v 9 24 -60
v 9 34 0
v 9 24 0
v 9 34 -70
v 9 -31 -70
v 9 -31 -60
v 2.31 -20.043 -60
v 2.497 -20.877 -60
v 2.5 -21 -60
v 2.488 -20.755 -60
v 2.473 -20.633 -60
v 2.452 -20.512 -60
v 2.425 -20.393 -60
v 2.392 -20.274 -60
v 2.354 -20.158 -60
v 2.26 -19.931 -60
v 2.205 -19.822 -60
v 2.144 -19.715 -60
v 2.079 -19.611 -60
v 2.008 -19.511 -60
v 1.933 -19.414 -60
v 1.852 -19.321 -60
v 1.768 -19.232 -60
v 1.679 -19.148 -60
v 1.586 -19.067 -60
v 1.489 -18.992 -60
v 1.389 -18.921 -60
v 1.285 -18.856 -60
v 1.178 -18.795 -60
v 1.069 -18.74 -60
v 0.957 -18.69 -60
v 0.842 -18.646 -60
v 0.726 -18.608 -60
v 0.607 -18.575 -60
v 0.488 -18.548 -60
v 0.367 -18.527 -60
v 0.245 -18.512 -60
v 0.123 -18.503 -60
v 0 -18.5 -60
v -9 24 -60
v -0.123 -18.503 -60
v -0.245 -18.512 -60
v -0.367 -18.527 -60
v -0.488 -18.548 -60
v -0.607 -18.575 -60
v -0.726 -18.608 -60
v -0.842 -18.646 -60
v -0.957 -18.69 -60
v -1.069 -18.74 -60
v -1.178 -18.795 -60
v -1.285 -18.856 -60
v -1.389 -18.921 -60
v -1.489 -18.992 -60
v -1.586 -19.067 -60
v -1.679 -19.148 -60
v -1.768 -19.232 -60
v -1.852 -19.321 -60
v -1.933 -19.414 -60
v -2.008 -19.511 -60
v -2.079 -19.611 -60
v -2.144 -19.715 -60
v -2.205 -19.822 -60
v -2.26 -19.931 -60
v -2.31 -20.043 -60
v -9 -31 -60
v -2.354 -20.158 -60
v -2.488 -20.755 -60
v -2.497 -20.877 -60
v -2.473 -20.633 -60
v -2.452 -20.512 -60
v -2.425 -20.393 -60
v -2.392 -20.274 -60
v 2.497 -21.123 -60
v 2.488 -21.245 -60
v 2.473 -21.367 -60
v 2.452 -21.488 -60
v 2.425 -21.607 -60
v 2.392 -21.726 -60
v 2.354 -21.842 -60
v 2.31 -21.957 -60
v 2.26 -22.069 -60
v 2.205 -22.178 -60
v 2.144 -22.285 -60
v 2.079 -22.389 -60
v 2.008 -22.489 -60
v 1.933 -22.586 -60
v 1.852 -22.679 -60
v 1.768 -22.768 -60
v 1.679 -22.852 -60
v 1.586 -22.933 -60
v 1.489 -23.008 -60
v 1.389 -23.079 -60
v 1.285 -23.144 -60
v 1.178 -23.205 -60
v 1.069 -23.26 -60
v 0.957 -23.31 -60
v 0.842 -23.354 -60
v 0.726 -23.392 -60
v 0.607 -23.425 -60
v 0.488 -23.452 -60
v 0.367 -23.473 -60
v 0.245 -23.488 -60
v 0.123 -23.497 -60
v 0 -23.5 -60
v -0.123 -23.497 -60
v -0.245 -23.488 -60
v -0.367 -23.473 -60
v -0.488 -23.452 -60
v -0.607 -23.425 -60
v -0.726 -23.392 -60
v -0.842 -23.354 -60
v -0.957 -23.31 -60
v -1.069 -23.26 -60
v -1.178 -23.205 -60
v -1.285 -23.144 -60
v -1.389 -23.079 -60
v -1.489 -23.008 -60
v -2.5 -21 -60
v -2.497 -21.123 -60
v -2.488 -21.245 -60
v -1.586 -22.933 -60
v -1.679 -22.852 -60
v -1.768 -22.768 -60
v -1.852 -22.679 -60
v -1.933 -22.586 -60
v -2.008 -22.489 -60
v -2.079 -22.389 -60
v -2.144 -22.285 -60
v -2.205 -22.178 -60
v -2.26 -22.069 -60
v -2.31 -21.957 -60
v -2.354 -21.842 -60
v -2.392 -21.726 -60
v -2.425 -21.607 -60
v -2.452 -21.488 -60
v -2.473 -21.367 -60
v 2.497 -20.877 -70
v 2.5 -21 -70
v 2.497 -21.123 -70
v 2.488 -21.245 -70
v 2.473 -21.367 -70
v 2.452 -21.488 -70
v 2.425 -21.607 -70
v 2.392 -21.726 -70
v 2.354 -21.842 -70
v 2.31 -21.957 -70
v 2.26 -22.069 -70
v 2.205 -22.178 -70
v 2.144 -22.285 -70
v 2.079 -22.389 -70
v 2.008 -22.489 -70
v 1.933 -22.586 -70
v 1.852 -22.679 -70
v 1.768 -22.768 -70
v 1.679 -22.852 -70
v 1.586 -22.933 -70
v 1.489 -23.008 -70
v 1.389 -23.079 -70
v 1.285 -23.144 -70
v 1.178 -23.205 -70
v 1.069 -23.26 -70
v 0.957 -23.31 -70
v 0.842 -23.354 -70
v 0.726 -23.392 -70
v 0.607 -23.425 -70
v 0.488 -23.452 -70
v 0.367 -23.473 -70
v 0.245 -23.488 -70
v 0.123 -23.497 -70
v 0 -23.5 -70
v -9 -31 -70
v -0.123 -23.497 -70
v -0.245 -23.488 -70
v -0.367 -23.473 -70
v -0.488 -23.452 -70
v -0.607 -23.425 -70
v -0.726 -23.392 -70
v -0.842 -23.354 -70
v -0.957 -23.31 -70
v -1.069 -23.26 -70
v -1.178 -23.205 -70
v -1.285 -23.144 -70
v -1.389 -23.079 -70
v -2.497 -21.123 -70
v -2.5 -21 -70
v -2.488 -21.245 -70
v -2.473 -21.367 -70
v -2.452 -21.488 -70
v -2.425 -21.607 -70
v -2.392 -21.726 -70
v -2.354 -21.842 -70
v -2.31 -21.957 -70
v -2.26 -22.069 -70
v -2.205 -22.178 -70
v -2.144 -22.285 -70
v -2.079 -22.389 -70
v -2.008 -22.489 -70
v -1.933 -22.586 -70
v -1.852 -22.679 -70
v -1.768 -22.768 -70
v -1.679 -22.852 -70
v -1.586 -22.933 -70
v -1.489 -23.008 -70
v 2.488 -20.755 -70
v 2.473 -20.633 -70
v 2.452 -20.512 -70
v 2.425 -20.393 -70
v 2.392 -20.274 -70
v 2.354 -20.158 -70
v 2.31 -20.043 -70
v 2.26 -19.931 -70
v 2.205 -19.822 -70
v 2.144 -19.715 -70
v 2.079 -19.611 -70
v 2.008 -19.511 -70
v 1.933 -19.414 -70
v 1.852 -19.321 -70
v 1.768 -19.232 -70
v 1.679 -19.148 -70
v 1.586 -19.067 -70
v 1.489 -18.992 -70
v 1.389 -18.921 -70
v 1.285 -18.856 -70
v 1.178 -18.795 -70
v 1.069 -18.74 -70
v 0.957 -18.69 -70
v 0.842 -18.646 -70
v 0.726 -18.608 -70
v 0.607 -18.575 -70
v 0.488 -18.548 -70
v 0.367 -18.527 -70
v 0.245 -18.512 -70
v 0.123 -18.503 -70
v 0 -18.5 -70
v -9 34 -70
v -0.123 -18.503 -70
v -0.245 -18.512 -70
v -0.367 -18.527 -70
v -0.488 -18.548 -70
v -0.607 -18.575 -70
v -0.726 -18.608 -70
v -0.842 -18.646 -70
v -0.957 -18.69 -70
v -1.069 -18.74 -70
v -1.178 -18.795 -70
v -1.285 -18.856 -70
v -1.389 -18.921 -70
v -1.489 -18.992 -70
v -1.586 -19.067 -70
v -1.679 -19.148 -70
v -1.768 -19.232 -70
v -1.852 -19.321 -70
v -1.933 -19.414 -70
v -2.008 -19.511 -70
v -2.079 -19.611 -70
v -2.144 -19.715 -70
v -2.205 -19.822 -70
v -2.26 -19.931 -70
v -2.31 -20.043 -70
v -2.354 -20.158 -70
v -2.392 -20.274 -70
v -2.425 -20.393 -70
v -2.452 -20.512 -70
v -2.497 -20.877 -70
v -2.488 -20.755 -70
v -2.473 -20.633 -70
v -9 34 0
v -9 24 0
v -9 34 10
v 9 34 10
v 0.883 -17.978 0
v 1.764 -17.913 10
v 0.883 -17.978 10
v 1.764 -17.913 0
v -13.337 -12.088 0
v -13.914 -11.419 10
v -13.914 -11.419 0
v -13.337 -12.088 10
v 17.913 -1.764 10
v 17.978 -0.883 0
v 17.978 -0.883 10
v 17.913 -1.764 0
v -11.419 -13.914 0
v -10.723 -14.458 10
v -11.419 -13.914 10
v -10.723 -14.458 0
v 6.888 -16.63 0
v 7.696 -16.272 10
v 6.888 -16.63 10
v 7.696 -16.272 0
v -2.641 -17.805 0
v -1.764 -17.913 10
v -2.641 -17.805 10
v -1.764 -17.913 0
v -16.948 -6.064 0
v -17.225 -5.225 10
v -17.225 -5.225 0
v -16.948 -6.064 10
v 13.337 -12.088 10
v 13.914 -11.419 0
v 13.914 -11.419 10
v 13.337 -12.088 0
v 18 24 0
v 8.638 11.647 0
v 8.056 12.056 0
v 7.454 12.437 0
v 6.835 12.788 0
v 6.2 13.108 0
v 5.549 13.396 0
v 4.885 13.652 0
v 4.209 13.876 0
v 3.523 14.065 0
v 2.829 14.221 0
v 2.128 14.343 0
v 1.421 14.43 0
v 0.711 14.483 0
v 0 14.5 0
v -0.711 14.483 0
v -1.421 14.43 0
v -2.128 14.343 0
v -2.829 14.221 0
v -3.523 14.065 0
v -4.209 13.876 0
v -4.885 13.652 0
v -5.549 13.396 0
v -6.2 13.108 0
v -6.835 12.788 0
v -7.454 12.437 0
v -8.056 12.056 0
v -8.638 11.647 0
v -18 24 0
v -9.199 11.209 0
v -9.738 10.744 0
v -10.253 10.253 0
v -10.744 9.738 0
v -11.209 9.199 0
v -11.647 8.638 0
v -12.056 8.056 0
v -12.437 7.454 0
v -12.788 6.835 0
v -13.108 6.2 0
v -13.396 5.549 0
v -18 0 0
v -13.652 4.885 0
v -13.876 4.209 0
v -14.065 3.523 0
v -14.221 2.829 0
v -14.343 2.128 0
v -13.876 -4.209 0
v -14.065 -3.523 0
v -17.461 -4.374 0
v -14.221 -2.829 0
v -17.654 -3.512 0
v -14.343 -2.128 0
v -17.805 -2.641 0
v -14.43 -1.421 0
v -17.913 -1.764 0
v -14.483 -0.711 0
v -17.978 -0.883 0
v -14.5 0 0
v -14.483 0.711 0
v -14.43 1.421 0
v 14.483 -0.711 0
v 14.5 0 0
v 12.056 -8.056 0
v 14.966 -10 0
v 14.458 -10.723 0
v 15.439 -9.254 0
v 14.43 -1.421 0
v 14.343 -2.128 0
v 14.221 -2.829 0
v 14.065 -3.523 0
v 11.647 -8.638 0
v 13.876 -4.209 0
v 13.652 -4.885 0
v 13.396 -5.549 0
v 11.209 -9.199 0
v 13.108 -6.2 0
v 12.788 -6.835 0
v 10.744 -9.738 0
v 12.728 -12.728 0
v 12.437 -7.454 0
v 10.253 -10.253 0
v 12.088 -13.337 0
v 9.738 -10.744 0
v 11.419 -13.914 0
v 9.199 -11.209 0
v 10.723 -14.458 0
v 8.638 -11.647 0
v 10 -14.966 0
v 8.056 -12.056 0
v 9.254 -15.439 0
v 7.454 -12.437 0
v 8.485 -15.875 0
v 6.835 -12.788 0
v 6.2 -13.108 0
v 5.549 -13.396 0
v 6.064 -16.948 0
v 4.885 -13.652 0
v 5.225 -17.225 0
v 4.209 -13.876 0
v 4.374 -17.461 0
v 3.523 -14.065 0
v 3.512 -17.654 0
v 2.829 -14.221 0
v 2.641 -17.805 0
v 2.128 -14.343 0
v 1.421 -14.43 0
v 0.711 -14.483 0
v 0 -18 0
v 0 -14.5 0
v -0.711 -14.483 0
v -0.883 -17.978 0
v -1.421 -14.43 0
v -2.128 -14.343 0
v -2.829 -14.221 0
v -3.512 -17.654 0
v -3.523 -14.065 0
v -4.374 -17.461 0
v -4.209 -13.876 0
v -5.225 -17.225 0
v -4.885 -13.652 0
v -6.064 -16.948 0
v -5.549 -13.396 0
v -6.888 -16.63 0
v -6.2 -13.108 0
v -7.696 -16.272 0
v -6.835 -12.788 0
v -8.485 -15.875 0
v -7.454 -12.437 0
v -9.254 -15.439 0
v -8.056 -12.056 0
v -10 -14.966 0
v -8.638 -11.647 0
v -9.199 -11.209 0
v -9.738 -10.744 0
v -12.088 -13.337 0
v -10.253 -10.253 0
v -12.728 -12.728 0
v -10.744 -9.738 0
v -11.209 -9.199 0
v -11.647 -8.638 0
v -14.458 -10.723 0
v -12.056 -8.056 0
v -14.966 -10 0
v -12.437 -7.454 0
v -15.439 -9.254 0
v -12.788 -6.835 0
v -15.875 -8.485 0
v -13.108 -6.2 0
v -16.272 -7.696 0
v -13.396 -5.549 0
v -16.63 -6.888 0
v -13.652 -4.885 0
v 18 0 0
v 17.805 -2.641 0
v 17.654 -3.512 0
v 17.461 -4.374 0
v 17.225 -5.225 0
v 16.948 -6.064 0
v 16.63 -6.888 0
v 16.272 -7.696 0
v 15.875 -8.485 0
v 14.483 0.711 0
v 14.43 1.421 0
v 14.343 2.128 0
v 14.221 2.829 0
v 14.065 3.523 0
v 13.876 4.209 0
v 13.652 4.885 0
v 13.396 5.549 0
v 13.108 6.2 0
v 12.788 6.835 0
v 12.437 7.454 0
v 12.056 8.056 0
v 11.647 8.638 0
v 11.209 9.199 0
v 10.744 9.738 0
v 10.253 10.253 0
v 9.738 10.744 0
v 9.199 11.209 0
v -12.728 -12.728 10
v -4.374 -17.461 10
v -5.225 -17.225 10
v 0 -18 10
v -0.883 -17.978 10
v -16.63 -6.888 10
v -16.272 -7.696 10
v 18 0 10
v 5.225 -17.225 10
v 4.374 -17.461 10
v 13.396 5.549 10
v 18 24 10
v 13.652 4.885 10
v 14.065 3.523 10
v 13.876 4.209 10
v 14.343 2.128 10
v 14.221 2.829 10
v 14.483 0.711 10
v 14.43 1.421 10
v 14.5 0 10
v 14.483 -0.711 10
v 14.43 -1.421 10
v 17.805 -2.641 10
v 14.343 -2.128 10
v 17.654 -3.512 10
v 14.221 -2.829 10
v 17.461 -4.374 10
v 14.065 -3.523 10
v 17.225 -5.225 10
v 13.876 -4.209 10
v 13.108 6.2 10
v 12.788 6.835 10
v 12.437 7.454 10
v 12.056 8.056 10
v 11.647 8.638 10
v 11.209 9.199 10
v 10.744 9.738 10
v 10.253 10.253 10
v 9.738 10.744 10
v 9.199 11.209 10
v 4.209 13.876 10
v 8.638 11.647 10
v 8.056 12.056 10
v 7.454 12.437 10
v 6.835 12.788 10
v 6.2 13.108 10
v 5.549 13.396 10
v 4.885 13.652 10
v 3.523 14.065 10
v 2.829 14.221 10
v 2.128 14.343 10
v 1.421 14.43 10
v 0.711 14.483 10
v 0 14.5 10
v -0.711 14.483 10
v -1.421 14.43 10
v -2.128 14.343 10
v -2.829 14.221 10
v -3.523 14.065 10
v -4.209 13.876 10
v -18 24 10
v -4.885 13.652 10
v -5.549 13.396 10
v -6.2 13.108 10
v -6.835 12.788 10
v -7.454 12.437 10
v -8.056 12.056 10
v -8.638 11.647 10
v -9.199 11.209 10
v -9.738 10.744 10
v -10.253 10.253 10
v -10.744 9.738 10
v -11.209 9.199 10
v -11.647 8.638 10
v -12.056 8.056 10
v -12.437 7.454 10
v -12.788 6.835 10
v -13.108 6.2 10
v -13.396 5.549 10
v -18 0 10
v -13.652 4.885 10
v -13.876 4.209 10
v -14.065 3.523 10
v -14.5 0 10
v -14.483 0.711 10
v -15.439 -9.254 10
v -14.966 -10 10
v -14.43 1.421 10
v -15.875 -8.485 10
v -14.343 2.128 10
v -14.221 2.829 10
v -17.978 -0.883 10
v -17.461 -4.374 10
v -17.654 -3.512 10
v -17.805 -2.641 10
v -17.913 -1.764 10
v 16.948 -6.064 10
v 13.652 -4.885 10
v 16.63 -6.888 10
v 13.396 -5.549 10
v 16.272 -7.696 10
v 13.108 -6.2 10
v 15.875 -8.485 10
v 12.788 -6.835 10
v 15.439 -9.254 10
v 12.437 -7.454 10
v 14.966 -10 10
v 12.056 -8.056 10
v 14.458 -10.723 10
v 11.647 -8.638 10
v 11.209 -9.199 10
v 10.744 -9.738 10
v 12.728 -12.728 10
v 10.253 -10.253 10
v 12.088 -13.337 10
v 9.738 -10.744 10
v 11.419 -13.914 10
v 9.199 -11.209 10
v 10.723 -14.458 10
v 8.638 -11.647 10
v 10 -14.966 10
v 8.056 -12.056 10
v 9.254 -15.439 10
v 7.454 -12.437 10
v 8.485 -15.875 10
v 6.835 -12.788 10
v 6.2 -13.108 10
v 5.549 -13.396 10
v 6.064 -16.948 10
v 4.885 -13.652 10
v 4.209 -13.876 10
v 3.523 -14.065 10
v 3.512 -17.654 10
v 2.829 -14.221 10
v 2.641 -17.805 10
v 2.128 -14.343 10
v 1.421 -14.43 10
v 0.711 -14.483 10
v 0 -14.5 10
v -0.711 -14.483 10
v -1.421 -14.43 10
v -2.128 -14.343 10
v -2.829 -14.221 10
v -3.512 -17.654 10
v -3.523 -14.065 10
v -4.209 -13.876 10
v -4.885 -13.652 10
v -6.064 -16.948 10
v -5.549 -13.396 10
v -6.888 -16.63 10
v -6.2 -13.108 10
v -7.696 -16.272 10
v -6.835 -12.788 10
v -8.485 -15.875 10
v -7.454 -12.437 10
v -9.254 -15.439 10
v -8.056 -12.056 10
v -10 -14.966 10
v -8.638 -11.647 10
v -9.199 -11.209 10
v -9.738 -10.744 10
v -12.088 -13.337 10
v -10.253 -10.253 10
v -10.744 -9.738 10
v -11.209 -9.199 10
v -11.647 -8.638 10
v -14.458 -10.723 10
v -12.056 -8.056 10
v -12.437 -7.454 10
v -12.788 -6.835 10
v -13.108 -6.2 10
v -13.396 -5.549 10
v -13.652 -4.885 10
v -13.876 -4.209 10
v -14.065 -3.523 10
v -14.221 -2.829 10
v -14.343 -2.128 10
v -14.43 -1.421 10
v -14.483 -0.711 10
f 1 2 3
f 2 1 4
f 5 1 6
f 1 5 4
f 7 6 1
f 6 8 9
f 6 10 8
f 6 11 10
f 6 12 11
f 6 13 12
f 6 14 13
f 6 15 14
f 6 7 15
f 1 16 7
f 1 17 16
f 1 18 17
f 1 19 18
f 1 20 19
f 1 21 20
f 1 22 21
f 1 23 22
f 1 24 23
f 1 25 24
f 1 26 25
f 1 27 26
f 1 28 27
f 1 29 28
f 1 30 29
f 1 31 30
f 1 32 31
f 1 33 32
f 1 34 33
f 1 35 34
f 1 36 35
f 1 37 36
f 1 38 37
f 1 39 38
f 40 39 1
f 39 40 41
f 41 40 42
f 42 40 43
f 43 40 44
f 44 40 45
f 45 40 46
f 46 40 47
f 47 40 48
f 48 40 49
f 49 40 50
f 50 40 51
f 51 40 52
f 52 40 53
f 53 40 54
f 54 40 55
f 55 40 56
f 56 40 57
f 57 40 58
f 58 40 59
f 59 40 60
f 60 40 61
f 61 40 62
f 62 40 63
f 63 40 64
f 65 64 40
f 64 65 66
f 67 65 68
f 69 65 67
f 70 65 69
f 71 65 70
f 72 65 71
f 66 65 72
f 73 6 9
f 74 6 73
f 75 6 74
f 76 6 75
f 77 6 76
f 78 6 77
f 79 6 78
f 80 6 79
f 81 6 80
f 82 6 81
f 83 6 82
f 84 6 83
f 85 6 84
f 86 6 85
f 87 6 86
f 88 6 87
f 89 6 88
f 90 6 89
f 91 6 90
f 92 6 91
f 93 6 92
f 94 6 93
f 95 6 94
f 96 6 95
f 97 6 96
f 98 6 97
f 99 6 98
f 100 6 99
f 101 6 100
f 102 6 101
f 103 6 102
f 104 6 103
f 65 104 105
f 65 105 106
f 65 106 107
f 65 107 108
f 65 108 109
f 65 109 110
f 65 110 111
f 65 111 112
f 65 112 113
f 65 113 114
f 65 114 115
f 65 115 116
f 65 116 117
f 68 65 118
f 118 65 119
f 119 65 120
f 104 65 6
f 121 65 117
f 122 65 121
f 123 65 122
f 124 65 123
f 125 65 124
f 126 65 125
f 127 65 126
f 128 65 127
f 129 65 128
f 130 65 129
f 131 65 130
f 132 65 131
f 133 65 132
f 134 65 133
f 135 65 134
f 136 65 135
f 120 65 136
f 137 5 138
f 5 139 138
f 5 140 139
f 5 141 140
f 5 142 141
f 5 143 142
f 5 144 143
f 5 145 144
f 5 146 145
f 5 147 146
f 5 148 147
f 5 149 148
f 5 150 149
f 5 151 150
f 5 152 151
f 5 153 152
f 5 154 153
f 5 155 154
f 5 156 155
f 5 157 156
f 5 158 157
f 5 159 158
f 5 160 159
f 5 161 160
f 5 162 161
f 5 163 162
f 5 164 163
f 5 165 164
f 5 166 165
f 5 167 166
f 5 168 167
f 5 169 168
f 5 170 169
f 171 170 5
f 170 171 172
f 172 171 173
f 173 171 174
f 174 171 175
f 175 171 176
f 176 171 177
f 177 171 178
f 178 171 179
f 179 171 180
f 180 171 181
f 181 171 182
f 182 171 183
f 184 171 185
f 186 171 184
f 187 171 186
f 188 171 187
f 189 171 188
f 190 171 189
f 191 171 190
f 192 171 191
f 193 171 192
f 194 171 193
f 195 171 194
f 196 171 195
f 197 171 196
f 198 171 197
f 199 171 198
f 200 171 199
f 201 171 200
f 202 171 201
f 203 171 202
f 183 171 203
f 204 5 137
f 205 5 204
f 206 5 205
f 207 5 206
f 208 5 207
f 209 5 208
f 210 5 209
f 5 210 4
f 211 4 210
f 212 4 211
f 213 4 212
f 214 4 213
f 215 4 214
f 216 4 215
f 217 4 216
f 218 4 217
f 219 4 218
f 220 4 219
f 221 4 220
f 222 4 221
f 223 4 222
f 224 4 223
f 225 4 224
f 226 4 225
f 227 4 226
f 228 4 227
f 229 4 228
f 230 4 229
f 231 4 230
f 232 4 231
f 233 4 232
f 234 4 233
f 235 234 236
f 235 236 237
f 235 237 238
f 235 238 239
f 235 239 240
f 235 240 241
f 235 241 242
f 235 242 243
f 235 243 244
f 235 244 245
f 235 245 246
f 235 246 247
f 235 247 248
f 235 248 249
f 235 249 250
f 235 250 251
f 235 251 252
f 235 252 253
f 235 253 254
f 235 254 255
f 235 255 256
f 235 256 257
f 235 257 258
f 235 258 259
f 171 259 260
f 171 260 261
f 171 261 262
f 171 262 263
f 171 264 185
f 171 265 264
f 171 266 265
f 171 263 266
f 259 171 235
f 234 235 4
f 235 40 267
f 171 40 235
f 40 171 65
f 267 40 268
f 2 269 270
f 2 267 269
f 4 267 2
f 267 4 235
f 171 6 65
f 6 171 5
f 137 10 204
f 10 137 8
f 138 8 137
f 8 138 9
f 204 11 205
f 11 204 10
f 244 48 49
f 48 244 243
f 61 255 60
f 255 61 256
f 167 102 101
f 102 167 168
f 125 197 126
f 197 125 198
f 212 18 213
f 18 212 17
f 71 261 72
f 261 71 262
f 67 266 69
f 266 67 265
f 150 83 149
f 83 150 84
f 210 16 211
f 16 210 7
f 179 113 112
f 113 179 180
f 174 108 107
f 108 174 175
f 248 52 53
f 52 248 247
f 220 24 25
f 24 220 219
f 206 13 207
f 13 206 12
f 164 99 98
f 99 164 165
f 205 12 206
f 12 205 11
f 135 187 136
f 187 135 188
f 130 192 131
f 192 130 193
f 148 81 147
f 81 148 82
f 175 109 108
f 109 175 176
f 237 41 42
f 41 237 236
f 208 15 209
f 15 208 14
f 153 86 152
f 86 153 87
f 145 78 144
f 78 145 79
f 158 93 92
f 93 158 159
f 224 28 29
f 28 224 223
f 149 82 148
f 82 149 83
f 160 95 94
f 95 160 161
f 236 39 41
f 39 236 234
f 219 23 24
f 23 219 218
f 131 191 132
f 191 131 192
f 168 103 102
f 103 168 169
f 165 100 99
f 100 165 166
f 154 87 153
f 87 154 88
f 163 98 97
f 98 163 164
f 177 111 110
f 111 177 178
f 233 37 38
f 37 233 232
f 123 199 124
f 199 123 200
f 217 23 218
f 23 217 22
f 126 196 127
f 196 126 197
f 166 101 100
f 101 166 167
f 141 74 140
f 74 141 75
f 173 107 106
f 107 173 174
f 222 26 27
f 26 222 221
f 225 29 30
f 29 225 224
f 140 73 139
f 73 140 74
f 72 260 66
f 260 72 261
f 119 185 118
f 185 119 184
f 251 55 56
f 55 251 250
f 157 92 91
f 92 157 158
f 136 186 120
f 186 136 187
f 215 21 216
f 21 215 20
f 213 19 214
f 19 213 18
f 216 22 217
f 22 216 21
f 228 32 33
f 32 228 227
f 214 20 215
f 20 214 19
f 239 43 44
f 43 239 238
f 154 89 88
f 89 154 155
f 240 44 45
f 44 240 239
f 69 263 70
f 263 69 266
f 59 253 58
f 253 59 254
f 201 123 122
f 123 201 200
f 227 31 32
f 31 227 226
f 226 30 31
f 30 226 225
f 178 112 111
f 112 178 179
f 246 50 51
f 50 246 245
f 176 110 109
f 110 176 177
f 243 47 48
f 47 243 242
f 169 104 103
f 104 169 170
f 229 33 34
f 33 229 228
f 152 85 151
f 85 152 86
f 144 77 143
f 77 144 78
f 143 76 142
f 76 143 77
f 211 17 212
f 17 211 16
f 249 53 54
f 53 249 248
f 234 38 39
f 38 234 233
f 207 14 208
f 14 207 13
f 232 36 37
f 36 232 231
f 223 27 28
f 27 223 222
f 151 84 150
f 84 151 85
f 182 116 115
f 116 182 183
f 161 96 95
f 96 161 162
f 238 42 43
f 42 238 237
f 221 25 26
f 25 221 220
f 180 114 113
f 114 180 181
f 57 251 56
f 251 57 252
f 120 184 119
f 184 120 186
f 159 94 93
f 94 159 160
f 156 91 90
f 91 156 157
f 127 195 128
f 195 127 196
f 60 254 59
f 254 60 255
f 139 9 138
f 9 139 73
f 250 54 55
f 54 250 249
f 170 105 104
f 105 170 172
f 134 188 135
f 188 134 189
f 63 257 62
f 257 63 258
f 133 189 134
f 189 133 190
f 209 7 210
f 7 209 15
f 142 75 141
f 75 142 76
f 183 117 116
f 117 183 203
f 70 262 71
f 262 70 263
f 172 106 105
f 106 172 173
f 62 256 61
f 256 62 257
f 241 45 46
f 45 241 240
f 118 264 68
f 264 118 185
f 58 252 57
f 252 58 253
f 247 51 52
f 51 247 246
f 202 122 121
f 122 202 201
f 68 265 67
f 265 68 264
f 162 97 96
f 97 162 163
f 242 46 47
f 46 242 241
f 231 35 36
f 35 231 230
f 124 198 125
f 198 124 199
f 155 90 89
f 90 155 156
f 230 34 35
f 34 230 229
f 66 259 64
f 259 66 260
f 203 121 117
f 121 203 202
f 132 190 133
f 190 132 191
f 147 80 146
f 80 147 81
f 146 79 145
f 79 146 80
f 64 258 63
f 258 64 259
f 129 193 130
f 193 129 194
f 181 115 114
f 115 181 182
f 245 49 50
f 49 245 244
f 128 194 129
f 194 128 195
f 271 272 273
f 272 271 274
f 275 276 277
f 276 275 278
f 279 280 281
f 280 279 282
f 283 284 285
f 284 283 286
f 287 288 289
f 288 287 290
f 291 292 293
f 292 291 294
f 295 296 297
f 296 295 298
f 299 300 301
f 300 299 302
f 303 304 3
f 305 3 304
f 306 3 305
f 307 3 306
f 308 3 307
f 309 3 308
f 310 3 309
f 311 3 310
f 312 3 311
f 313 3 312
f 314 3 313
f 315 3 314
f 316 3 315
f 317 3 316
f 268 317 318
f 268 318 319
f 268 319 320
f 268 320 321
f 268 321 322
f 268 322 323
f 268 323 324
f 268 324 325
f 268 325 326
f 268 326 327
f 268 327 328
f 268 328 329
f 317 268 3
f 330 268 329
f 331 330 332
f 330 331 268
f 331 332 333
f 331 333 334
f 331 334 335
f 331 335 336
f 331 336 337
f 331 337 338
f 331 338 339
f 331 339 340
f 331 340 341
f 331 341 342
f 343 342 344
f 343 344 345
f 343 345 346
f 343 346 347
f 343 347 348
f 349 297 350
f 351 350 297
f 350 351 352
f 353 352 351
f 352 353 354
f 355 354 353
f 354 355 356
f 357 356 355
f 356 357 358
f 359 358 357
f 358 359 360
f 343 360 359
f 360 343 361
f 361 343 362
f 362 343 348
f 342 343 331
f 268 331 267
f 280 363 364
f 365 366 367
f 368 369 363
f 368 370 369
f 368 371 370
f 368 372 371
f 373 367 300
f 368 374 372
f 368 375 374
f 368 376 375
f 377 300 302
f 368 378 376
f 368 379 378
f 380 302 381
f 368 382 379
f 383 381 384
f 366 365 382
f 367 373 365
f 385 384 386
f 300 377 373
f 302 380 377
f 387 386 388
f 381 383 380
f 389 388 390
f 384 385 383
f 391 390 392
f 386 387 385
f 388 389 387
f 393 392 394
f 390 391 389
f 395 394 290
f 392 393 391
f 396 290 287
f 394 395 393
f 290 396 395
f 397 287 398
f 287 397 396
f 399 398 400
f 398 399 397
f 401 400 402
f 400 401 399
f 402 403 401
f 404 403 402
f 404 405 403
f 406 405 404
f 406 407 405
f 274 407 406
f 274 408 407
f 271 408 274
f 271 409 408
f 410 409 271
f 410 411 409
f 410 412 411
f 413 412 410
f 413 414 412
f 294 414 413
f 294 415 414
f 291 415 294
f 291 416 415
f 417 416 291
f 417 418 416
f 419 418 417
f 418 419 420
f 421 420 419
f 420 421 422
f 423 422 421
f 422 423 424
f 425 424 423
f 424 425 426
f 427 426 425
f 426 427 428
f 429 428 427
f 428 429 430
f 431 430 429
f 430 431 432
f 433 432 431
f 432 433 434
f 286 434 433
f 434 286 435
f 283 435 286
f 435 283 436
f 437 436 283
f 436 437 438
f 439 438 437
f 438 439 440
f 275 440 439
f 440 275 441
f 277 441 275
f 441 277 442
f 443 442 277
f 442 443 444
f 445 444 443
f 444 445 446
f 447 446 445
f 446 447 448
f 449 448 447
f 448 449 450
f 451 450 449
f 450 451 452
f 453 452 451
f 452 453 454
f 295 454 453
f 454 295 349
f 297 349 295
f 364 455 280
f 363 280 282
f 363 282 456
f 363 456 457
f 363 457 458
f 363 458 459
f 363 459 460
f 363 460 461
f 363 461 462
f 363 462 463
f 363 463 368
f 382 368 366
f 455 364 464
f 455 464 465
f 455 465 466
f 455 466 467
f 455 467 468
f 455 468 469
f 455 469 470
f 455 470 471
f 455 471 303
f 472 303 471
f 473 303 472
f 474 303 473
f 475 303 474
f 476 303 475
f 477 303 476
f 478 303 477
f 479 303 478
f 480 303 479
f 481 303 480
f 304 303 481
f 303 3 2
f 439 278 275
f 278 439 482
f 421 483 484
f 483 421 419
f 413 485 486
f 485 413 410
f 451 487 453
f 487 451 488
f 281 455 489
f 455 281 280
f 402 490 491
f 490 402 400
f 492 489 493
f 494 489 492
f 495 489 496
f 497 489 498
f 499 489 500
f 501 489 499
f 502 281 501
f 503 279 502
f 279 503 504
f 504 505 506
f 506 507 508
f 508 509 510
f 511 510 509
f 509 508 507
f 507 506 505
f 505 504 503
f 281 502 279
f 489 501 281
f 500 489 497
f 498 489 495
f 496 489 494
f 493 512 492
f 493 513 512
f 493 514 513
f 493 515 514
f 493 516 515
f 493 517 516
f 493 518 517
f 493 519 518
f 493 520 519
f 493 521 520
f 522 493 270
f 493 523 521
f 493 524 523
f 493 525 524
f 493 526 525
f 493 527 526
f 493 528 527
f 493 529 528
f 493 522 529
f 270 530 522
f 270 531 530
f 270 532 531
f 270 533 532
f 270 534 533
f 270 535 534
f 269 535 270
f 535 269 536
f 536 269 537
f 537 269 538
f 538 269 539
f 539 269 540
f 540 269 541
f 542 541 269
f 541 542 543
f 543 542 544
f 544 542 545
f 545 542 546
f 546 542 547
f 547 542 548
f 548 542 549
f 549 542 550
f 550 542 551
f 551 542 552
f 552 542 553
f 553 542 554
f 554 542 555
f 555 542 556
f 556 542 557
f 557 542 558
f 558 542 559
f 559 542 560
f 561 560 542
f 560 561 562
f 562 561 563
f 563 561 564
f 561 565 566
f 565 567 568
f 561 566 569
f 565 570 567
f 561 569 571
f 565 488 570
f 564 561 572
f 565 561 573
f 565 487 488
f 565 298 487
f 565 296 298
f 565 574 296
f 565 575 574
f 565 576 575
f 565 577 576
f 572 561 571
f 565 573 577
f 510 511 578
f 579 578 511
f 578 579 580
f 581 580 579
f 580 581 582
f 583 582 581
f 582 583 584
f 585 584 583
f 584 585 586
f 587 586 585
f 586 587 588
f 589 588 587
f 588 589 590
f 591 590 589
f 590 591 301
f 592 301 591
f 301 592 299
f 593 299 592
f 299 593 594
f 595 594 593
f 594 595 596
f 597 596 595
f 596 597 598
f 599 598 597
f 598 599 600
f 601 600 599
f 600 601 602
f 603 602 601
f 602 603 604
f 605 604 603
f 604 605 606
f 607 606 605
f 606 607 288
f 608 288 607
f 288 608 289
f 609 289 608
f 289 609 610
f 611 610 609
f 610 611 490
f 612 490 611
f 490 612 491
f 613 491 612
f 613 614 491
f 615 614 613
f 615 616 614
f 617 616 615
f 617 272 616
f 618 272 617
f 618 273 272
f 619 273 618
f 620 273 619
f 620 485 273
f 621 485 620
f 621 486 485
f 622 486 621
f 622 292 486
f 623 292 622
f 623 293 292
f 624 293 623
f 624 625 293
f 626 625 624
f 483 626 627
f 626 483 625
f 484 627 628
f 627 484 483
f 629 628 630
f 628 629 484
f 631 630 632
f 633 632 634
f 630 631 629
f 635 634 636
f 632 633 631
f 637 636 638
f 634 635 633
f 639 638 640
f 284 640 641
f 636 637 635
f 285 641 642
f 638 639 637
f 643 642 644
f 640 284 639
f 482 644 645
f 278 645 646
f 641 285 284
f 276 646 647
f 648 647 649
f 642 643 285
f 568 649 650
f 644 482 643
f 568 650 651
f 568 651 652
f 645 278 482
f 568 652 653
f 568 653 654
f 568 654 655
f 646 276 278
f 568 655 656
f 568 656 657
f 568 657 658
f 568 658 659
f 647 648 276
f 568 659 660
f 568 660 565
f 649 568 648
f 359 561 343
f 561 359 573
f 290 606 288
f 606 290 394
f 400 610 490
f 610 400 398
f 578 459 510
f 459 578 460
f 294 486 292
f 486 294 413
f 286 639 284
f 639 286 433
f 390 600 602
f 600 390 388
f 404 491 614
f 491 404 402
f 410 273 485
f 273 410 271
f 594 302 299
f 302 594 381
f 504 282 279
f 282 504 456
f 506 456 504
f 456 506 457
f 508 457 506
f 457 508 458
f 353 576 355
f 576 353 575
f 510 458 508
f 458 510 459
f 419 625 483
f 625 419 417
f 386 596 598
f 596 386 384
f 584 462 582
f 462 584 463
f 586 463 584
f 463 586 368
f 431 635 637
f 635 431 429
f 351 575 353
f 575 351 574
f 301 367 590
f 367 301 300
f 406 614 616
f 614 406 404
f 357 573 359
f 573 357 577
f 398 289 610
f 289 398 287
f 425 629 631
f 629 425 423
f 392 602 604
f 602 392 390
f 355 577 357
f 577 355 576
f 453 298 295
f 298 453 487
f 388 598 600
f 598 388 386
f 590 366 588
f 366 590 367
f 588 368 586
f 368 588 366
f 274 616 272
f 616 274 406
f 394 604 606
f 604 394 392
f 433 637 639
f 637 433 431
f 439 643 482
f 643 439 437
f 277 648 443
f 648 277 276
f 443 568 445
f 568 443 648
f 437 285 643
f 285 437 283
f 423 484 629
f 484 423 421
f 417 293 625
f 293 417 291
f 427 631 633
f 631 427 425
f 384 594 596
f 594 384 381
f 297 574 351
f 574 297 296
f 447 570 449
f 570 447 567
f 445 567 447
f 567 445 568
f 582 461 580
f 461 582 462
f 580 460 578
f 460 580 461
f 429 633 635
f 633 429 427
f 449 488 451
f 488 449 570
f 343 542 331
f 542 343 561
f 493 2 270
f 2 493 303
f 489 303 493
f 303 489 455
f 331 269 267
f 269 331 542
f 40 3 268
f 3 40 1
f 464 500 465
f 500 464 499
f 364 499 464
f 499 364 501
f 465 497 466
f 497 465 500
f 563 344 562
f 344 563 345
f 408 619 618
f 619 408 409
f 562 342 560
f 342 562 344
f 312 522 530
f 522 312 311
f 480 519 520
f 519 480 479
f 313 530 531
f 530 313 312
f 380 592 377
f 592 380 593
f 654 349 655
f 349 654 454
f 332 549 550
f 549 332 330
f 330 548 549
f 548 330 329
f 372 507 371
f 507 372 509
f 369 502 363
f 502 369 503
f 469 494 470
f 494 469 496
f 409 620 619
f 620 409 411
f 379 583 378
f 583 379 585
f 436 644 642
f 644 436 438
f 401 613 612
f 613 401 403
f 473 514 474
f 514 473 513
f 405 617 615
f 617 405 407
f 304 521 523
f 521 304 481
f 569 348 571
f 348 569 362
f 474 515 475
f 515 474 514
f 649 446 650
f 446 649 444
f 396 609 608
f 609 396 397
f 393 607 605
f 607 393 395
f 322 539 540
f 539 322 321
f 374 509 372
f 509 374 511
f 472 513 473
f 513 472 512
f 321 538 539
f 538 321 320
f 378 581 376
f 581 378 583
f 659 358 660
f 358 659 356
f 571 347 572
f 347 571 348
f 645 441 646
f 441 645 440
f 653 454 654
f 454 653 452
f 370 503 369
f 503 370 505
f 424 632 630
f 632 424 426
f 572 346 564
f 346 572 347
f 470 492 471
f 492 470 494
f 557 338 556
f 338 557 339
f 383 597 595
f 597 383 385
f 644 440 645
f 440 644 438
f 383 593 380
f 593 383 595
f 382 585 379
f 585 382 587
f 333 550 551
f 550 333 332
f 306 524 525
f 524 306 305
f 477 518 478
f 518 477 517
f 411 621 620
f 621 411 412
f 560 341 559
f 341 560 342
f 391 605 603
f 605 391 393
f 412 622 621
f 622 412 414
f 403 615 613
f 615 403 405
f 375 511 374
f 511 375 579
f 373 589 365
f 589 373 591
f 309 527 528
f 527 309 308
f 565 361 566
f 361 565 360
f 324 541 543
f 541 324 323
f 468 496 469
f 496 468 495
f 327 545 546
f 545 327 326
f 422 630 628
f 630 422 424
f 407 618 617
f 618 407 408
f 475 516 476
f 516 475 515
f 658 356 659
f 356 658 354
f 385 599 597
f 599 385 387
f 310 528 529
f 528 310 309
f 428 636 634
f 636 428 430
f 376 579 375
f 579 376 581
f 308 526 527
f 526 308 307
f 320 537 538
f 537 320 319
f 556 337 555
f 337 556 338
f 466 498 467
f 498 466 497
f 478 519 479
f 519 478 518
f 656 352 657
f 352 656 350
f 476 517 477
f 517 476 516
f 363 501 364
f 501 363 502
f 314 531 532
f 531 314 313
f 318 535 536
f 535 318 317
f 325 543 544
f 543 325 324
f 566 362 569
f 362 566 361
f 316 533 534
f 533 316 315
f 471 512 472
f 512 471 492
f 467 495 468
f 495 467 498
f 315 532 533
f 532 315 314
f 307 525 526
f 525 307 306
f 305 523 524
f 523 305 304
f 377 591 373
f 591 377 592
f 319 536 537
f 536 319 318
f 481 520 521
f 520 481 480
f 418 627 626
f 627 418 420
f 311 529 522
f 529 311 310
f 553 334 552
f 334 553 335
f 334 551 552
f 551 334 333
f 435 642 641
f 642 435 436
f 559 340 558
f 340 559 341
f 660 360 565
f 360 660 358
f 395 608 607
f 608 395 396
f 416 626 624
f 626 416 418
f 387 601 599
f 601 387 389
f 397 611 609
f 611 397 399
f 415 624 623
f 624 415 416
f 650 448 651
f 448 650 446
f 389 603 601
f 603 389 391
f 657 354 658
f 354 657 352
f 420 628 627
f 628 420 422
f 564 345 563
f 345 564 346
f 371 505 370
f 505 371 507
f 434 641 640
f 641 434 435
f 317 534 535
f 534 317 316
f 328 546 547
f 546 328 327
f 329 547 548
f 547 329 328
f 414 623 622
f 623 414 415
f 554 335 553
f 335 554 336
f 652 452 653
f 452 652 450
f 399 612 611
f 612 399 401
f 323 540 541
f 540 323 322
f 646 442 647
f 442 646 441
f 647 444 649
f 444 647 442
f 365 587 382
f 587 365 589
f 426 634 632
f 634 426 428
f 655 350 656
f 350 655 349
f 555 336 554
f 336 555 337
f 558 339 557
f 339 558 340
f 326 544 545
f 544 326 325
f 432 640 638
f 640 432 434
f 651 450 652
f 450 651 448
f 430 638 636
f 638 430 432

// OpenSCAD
// Generated by SolidPython 1.1.3 on 2024-03-23 19:11:38
$fn = 128;


difference(){
	union() {
		difference() {
			cylinder(h = 10, r = 18.0000000000);
		}
		hull() {
			translate(v = [-18.0000000000, 0, 0]) {
				cube(size = [36, 24.0000000000, 10]);
			}
			translate(v = [0, 0, 0]) {
				translate(v = [0, 24.0000000000, 0]) {
					translate(v = [-9.0000000000, 0, 0]) {
						cube(size = [18.0000000000, 10, 10]);
					}
				}
			}
		}
		translate(v = [0, 0, -60]) {
			translate(v = [0, 24.0000000000, 0]) {
				translate(v = [-9.0000000000, 0, 0]) {
					cube(size = [18.0000000000, 10, 70]);
				}
			}
		}
		translate(v = [0, -31, 0]) {
			translate(v = [-9.0000000000, 0, 0]) {
				translate(v = [0, 0, -70]) {
					difference() {
						cube(size = [18.0000000000, 65, 10]);
						translate(v = [0, 10, 0]) {
							translate(v = [9.0000000000, 0, 0]) {
								cylinder(h = 10, r = 2.5000000000);
							}
						}
					}
				}
			}
		}
	}
	/* Holes Below*/
	union(){
		union(){
			cylinder(h = 10, r = 14.5000000000);
		}
	} /* End Holes */ 
}
/***********************************************
*********      SolidPython code:      **********
************************************************
 
from dataclasses import dataclass

from solid import cylinder, scad_render_to_file, hole, cube, rotate, translate, hull, sphere, mirror, square
from solid.utils import left, right, forward, back, up, down, BACK_VEC, FORWARD_VEC, fillet_2d


@dataclass
class Ring:
    innerd: int = 29
    thick: int = 5
    height: int = 10

    @property
    def outerd(self):
        return self.innerd + self.thick

    def obj(self):
        outer = cylinder(r=self.outerd/2, h=self.height)
        inner = cylinder(r=self.innerd/2, h=self.height)
        return outer - hole()(inner)


@dataclass
class UpperBody:
    clearance: int = 6
    thick: int = 10
    width: int = 34

    @property
    def length(self):
        return self.width/2 + self.clearance

    def pos(self, obj):
        return left(self.width/2)(obj)

    def obj(self):
        return self.pos(cube([self.width, self.length, self.thick]))


@dataclass
class Spine:
    height: int = 70
    width: int = 34
    thick: int = 10
    um_length: int = 50
    um_thick: int = 10

    def _obj(self):
        return cube([self.width, self.thick, self.height])

    def chamfer(self, obj):
        return (
            self._obj() - (
                # top short edge
                forward(self.thick/2)(rotate(45, [-1, 0, 0])(self._obj())) +
                # bottom short edge
                forward(self.thick)(up(self.height - self.thick/2)(
                    rotate(45, [1, 0, 0])(self._obj()))
                )
                # left (facing y+) long edge
            )
        )

    def pos(self, obj):
        return down(self.height - self.um_thick)(forward(self.um_length)(left(self.width/2)(obj)))

    def obj(self):
        return self.pos(self._obj())


@dataclass
class SpineConnector:
    width: int = 34
    thick: int = 10
    um_length: int = 50
    um_thick: int = 10

    @property
    def height(self):
        return self.um_thick

    def _obj(self):
        return cube([self.width, self.thick, self.um_thick])

    def chamfer(self, obj):
        return (
            self._obj() - (
                # top short edge
                forward(self.thick/2)(rotate(45, [-1, 0, 0])(self._obj())) +
                # bottom short edge
                forward(self.thick)(up(self.height - self.thick/2)(
                    rotate(45, [1, 0, 0])(self._obj()))
                )
                # left (facing y+) long edge
            )
        )

    def pos(self, obj):
        return down(self.height - self.um_thick)(forward(self.um_length)(left(self.width/2)(obj)))

    def obj(self):
        return self.pos(self._obj())


@dataclass
class LowerBody:
    length: int = 55
    width: int = 34
    thick: int = 10
    spine_height: int = 70
    spine_thick: int = 10
    um_length: int = 10
    hole_offset: int = 10

    def _obj(self):
        return (
            cube([self.width, self.length + self.spine_thick, self.thick]) -
            forward(self.hole_offset)(right(self.width/2)(cylinder(r=2.5, h=self.thick)))
        )

    def pos(self, obj):
        return back(31)(left(self.width/2)(down(self.spine_height)(obj)))

    def obj(self):
        return self.pos(self._obj())


ring = Ring(thick=7)
um = UpperBody(thick=ring.height, width=ring.outerd)
spine = Spine(width=ring.outerd/2, um_length=um.length, um_thick=um.thick)
spine_connector = SpineConnector(width=ring.outerd/2, um_length=um.length, um_thick=um.thick)
lb = LowerBody(width=ring.outerd/2, spine_height=spine.height, spine_thick=spine.thick)

render = [
    ring.obj(),
    hull()(
        um.obj(),
        spine_connector.obj(),
    ),
    spine.obj(),
    lb.obj()
]

scad_render_to_file(sum(render), 'test.scad', file_header='$fn = 128;')
 
 
************************************************/
